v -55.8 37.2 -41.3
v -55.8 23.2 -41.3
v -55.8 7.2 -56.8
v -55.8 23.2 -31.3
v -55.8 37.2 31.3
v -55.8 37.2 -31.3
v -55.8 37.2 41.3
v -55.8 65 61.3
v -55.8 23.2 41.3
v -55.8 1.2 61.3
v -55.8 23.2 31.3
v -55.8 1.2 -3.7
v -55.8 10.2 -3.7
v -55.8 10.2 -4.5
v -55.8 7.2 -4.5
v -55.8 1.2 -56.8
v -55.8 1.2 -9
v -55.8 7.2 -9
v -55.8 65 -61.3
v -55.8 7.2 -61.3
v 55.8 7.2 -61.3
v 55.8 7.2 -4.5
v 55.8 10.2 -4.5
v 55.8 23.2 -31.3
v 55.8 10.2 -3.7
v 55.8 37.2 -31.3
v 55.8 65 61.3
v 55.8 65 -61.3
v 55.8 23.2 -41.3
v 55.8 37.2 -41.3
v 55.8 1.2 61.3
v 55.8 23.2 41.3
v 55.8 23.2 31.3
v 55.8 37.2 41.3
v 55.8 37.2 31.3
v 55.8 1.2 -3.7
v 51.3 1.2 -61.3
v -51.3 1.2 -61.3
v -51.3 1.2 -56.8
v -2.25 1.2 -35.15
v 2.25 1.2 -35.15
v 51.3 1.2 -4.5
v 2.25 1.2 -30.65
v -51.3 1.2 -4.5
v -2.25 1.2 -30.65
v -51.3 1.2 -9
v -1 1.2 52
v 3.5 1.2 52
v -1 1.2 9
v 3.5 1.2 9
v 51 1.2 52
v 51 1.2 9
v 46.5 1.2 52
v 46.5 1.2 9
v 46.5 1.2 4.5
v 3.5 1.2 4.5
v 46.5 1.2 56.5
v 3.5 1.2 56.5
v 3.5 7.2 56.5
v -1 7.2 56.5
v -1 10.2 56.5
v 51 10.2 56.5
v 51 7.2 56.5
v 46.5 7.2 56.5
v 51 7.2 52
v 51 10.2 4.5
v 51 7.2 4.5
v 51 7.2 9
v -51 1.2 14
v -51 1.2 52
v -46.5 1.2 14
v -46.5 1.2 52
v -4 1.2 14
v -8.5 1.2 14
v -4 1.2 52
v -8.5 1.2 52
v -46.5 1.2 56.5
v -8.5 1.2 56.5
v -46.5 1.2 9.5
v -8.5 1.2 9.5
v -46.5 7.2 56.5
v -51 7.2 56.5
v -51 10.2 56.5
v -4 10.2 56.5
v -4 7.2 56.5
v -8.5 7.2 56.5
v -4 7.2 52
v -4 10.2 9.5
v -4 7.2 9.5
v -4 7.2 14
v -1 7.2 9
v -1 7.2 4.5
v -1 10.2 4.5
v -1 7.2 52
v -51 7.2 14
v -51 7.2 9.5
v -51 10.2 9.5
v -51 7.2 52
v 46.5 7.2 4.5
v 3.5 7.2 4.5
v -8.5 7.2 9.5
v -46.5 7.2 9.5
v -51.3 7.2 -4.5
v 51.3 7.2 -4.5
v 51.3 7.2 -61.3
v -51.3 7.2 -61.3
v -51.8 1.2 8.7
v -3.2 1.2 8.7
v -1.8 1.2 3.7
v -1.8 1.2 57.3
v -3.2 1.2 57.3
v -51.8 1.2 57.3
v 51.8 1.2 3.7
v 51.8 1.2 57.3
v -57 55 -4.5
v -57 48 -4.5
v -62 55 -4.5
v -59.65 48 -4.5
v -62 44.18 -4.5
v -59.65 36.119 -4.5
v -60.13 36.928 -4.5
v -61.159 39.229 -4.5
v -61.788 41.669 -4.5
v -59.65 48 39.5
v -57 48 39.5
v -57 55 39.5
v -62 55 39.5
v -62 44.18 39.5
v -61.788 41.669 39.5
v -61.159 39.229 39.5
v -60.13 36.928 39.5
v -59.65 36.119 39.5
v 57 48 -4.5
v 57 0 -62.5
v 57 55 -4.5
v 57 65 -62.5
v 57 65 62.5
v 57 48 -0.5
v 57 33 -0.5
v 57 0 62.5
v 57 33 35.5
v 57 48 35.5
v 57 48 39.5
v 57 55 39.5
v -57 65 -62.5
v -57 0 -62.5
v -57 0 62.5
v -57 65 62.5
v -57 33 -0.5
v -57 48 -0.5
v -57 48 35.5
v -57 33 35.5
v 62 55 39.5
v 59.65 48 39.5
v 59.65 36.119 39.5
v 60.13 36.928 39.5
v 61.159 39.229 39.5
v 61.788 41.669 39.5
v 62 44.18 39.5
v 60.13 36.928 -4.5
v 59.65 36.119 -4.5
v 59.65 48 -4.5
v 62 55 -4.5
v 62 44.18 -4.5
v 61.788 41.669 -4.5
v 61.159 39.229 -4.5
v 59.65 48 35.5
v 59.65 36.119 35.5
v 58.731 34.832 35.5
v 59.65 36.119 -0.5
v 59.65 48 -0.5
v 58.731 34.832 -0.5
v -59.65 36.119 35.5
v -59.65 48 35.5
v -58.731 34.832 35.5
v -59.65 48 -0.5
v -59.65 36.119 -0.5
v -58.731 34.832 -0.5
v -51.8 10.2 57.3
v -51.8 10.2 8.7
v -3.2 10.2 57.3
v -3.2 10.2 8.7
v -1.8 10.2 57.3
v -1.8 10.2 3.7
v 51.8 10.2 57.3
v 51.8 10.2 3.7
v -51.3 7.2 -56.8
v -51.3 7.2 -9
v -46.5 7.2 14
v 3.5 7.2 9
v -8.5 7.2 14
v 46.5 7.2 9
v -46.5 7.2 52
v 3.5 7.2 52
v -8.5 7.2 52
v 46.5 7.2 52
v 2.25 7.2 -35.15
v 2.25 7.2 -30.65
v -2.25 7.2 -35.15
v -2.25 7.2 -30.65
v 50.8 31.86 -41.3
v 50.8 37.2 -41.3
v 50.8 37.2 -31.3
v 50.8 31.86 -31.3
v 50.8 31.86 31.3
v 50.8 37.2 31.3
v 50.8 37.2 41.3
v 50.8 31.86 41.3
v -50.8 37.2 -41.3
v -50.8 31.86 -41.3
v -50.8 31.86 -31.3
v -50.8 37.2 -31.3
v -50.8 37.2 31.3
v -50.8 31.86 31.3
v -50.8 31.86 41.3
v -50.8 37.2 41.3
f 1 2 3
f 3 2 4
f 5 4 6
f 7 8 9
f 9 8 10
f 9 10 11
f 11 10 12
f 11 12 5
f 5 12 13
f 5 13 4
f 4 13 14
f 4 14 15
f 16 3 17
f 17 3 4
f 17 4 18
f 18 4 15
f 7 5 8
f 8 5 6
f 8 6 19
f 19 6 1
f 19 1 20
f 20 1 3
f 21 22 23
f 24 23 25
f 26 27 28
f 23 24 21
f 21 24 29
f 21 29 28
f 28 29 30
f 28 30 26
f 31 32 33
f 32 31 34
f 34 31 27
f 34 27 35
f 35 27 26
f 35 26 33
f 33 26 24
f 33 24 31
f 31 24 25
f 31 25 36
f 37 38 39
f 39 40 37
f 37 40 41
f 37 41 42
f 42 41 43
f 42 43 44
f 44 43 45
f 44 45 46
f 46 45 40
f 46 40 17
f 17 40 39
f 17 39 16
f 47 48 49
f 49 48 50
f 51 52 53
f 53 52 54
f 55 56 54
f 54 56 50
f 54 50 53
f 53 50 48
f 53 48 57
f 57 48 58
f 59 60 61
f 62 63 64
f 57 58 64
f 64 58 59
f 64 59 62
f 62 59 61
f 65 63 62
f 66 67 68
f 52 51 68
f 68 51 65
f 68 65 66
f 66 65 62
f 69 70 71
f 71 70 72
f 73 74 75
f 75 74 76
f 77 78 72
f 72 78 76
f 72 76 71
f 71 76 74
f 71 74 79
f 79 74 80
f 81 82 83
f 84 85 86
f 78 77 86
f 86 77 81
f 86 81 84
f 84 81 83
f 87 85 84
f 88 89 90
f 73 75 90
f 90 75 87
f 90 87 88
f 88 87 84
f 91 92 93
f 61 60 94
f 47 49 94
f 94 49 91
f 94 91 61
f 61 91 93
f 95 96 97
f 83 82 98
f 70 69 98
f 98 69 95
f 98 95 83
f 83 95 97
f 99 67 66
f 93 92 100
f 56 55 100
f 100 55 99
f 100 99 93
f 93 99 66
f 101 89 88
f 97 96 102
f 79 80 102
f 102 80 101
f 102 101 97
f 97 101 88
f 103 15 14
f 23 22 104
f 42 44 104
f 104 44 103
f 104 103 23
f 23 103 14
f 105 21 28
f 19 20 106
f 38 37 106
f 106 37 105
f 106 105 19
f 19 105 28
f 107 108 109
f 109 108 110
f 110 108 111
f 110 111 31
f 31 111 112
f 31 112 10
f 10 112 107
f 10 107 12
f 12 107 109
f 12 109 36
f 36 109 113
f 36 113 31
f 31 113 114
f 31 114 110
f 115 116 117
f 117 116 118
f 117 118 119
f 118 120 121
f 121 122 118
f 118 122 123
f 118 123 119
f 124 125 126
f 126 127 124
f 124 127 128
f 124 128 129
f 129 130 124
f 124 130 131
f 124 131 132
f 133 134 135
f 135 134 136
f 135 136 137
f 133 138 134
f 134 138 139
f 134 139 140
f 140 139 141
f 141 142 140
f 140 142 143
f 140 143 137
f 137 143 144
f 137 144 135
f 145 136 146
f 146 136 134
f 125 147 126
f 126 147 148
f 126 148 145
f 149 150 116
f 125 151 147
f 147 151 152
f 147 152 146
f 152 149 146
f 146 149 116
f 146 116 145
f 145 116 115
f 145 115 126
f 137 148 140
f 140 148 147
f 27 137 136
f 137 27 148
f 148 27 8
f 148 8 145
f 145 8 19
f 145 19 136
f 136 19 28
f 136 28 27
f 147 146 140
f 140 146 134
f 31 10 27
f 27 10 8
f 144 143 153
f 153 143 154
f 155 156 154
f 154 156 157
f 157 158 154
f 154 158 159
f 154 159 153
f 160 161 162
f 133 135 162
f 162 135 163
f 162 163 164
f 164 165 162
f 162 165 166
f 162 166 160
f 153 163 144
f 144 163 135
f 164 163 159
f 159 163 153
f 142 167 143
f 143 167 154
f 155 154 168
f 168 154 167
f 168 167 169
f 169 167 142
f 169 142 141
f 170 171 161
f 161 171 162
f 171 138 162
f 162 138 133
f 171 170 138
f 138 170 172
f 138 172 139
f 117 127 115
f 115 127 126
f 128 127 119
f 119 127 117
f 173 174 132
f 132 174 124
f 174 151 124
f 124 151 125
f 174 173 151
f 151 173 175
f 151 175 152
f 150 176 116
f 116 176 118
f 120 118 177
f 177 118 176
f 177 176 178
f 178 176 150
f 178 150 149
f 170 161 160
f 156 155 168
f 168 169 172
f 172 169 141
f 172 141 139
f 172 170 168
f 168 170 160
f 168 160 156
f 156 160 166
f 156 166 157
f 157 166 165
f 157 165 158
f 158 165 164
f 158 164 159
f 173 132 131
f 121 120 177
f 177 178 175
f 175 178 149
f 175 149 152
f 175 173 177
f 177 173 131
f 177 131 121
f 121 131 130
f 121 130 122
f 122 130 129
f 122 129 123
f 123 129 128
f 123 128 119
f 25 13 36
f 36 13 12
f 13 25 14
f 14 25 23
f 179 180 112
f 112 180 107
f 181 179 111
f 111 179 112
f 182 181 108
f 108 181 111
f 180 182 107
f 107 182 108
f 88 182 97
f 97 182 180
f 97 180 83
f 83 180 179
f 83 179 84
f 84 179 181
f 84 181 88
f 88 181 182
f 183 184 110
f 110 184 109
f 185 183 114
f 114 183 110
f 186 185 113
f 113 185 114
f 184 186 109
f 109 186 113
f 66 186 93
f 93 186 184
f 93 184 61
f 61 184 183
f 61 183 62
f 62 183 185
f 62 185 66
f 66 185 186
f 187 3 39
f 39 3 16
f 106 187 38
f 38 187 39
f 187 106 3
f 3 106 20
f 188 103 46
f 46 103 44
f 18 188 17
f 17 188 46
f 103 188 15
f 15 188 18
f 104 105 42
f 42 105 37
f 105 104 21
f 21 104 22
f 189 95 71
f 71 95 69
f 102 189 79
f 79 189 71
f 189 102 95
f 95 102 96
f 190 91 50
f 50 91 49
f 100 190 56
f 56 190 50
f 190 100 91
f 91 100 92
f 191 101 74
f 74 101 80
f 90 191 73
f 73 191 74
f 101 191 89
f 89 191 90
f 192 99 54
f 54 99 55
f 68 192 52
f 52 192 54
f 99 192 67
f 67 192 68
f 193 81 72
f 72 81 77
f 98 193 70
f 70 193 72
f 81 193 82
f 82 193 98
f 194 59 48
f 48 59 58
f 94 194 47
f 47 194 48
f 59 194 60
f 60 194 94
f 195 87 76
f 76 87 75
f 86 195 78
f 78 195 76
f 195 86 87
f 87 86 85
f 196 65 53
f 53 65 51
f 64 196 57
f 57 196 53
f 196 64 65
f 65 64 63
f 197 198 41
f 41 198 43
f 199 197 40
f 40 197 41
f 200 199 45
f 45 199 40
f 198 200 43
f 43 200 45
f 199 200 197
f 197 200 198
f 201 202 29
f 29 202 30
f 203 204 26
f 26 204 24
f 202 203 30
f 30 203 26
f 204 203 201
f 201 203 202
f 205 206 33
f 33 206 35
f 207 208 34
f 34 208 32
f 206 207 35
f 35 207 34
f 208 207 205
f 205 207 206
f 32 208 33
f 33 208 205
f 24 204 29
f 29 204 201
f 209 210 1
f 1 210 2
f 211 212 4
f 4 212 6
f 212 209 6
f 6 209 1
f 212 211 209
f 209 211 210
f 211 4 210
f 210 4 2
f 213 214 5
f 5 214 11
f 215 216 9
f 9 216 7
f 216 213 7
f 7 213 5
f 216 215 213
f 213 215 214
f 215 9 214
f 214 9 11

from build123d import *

# Parameters (mm, degrees)
SKETCH1_W                  = 114
SKETCH1_H                  = 125
BOSS_EXTRUDE1_DEPTH        = 65
SKETCH2_W                  = 111.6
SKETCH2_H                  = 122.6
CUT_EXTRUDE1_DEPTH         = 63.8
SKETCH3_W                  = 44
SKETCH3_H                  = 22
BOSS_EXTRUDE2_DEPTH        = 5
SKETCH4_W                  = 2.65
SKETCH4_H                  = 15
CUT_EXTRUDE2_DEPTH         = 4
SKETCH6_W                  = 2.65
SKETCH6_H                  = 15
CUT_EXTRUDE3_DEPTH         = 4
FILLET1_R                  = 15
FILLET2_R                  = 15
SKETCH9_W                  = 111.6
SKETCH9_H                  = 57.6
SKETCH9_W_2                = 48.6
SKETCH9_H_2                = 48.6
SKETCH9_W_3                = 53.6
SKETCH9_H_3                = 53.6
BOSS_EXTRUDE4_DEPTH        = 9
SKETCH10_W                 = 111.6
SKETCH10_H                 = 56.8
SKETCH10_W_2               = 47
SKETCH10_H_2               = 47
SKETCH10_W_3               = 52
SKETCH10_H_3               = 52
CUT_EXTRUDE5_DEPTH         = 9
SKETCH11_W                 = 4.5
SKETCH11_H                 = 4.5
SKETCH11_H_2               = 56.8
BOSS_EXTRUDE5_DEPTH        = 6
SKETCH12_W                 = 10
SKETCH12_H                 = 5
BOSS_EXTRUDE6_DEPTH        = 5
CHAMFER1_SIZE              = 9
CHAMFER1_SIZE_2            = 5.196152423
CHAMFER1_OF_MIRROR8_SIZE   = 9
CHAMFER1_OF_MIRROR8_SIZE_2 = 5.196152423


with BuildPart() as part:
    # Sketch1 → Boss-Extrude1 (new body)
    with BuildSketch(Plane(origin=(0, 0, 0), x_dir=(1, 0, 0), z_dir=(0, 1, 0))):
        Rectangle(SKETCH1_W, SKETCH1_H)
    extrude(amount=BOSS_EXTRUDE1_DEPTH)

    # Sketch2 → Cut-Extrude1 (cut)
    with BuildSketch(Plane(origin=(0, 65, 0), x_dir=(1, 0, 0), z_dir=(0, 1, 0))):
        Rectangle(SKETCH2_W, SKETCH2_H)
    extrude(amount=-CUT_EXTRUDE1_DEPTH, mode=Mode.SUBTRACT)

    # Sketch3 → Boss-Extrude2 (add)
    with BuildSketch(Plane(origin=(57, 0, 0), x_dir=(0, 0, -1), z_dir=(1, 0, 0))):
        with Locations((-17.5, 44)):
            Rectangle(SKETCH3_W, SKETCH3_H)
    boss_extrude2 = extrude(amount=BOSS_EXTRUDE2_DEPTH)

    # Sketch4 → Cut-Extrude2 (cut)
    with BuildSketch(Plane.XY.offset(39.5)):
        with Locations((58.325, 40.5)):
            Rectangle(SKETCH4_W, SKETCH4_H)
    cut_extrude2 = extrude(amount=-CUT_EXTRUDE2_DEPTH, mode=Mode.SUBTRACT)

    # Sketch6 → Cut-Extrude3 (cut)
    with BuildSketch(Plane(origin=(0, 0, -4.5), x_dir=(-1, 0, 0), z_dir=(0, 0, -1))):
        with Locations((-58.325, 40.5)):
            Rectangle(SKETCH6_W, SKETCH6_H)
    cut_extrude3 = extrude(amount=-CUT_EXTRUDE3_DEPTH, mode=Mode.SUBTRACT)

    # Mirror5: Boss-Extrude2 across plane
    add(boss_extrude2.mirror(Plane(origin=(0, 0, 0), x_dir=(0, 0, 1), z_dir=(1, 0, 0))))

    # Mirror6: Cut-Extrude2 across plane
    add(cut_extrude2.mirror(Plane(origin=(0, 0, 0), x_dir=(0, 0, 1), z_dir=(1, 0, 0))), mode=Mode.SUBTRACT)

    # Mirror7: Cut-Extrude3 across plane
    add(cut_extrude3.mirror(Plane(origin=(0, 0, 0), x_dir=(0, 0, 1), z_dir=(1, 0, 0))), mode=Mode.SUBTRACT)

    # Fillet1
    # the kernel refuses this fillet: 15 mm, written as the material it takes off along each edge
    with BuildSketch(Plane(origin=(62, 33, -32.450849719), x_dir=(-1, 0, 0), z_dir=(0, 0, 1))) as fillet1_piece_1:
        with BuildLine():
            CenterArc((15, -11.180339887), FILLET1_R, 131.810314896, 48.189685104)
            Line((0, -11.180339887), (-0.3, -11.180339887))
            Line((-0.3, -11.180339887), (-0.3, 0))
            Line((-0.3, 0), (0, 0.3))
            ThreePointArc((0, 0.3), (2.5, 0.3), (4.8, 0.223606798))
            Line((4.8, 0.223606798), (5, 0))
        make_face()
    extrude(amount=99.901699437, mode=Mode.SUBTRACT)

    # Fillet2
    # the kernel refuses this fillet: 15 mm, written as the material it takes off along each edge
    with BuildSketch(Plane(origin=(-62, 33, -32.450849719), x_dir=(1, 0, 0), z_dir=(0, 0, 1))) as fillet2_piece_1:
        with BuildLine():
            CenterArc((15, 11.180339887), FILLET2_R, 180, 48.189685104)
            Line((0, 11.180339887), (-0.3, 11.180339887))
            Line((-0.3, 11.180339887), (-0.3, 0))
            Line((-0.3, 0), (0, -0.3))
            ThreePointArc((0, -0.3), (2.5, -0.3), (4.8, -0.223606798))
            Line((4.8, -0.223606798), (5, 0))
        make_face()
    extrude(amount=99.901699437, mode=Mode.SUBTRACT)

    # Sketch9 → Boss-Extrude4 (add)
    with BuildSketch(Plane(origin=(0, 1.2, 0), x_dir=(1, 0, 0), z_dir=(0, 1, 0))):
        with Locations((0, 32.5)):
            Rectangle(SKETCH9_W, SKETCH9_H)
        with Locations((-27.5, -33)):
            Rectangle(SKETCH9_W_2, SKETCH9_H_2)
        with Locations((25, -30.5)):
            Rectangle(SKETCH9_W_3, SKETCH9_H_3)
    extrude(amount=BOSS_EXTRUDE4_DEPTH)

    # Sketch10 → Cut-Extrude5 (cut)
    with BuildSketch(Plane(origin=(0, 10.2, 0), x_dir=(1, 0, 0), z_dir=(0, 1, 0))):
        with Locations((0, 32.9)):
            Rectangle(SKETCH10_W, SKETCH10_H)
        with Locations((-27.5, -33)):
            Rectangle(SKETCH10_W_2, SKETCH10_H_2)
        with Locations((25, -30.5)):
            Rectangle(SKETCH10_W_3, SKETCH10_H_3)
    extrude(amount=-CUT_EXTRUDE5_DEPTH, mode=Mode.SUBTRACT)

    # Sketch11 → Boss-Extrude5 (add)
    with BuildSketch(Plane(origin=(0, 1.2, 0), x_dir=(1, 0, 0), z_dir=(0, 1, 0))):
        with Locations((-53.55, 59.05)):
            Rectangle(SKETCH11_W, SKETCH11_H)
        with Locations((-53.55, 6.75)):
            Rectangle(SKETCH11_W, SKETCH11_H)
        with Locations((53.55, 32.9)):
            Rectangle(SKETCH11_W, SKETCH11_H_2)
        with Locations((-48.75, -11.75)):
            Rectangle(SKETCH11_W, SKETCH11_H)
        with Locations((1.25, -6.75)):
            Rectangle(SKETCH11_W, SKETCH11_H)
        with Locations((-6.25, -11.75)):
            Rectangle(SKETCH11_W, SKETCH11_H)
        with Locations((48.75, -6.75)):
            Rectangle(SKETCH11_W, SKETCH11_H)
        with Locations((-48.75, -54.25)):
            Rectangle(SKETCH11_W, SKETCH11_H)
        with Locations((1.25, -54.25)):
            Rectangle(SKETCH11_W, SKETCH11_H)
        with Locations((-6.25, -54.25)):
            Rectangle(SKETCH11_W, SKETCH11_H)
        with Locations((48.75, -54.25)):
            Rectangle(SKETCH11_W, SKETCH11_H)
        with Locations((0, 32.9)):
            Rectangle(SKETCH11_W, SKETCH11_H)
    extrude(amount=BOSS_EXTRUDE5_DEPTH)

    # Sketch12 → Boss-Extrude6 (add)
    with BuildSketch(Plane.ZY.offset(-55.8)):
        with Locations((-36.3, 34.7)):
            Rectangle(SKETCH12_W, SKETCH12_H)
        with Locations((36.3, 34.7)):
            Rectangle(SKETCH12_W, SKETCH12_H)
    boss_extrude6 = extrude(amount=BOSS_EXTRUDE6_DEPTH)

    # Chamfer1
    # the kernel refuses this chamfer: 9, 5.196152423 mm, written as the material it adds along each edge
    with BuildSketch(Plane(origin=(55.8, 32.2, 41.3), x_dir=(0.019326765612700678, -0.999813220622208, 0), z_dir=(0, 0, -1))) as chamfer1_piece_1_section:
        Polygon((CHAMFER1_SIZE * 0.999813220622, CHAMFER1_SIZE * 0.0193267656127), (-CHAMFER1_SIZE_2 * 0.0193267656116, CHAMFER1_SIZE_2 * 0.999813220566), (0, 0), align=None)
    chamfer1_piece_1 = extrude(amount=10, mode=Mode.PRIVATE)
    chamfer1_piece_1 = split(chamfer1_piece_1, bisect_by=Plane(origin=(50.8, 29.159896695, 36.3), z_dir=(1, 0, 0)), keep=Keep.TOP, mode=Mode.PRIVATE)
    add(chamfer1_piece_1)
    with BuildSketch(Plane(origin=(55.8, 32.2, -31.3), x_dir=(0.019326765612700678, -0.999813220622208, 0), z_dir=(0, 0, -1))) as chamfer1_piece_2_section:
        Polygon((CHAMFER1_SIZE * 0.999813220622, CHAMFER1_SIZE * 0.0193267656127), (-CHAMFER1_SIZE_2 * 0.0193267656116, CHAMFER1_SIZE_2 * 0.999813220566), (0, 0), align=None)
    chamfer1_piece_2 = extrude(amount=10, mode=Mode.PRIVATE)
    chamfer1_piece_2 = split(chamfer1_piece_2, bisect_by=Plane(origin=(50.8, 29.159896695, -36.3), z_dir=(1, 0, 0)), keep=Keep.TOP, mode=Mode.PRIVATE)
    add(chamfer1_piece_2)

    # Mirror8: Boss-Extrude6 across plane
    add(boss_extrude6.mirror(Plane(origin=(0, 0, 0), x_dir=(0, 0, 1), z_dir=(1, 0, 0))))

    # Chamfer1 of Mirror8
    # the kernel refuses this chamfer: 9, 5.196152423 mm, written as the material it adds along each edge
    with BuildSketch(Plane(origin=(-55.8, 32.2, 41.3), x_dir=(-0.01932676561270296, -0.9998132206222078, 0), z_dir=(0, 0, -1))) as chamfer1_of_mirror8_piece_1_section:
        Polygon((CHAMFER1_OF_MIRROR8_SIZE * 0.999813220622, -CHAMFER1_OF_MIRROR8_SIZE * 0.0193267656127), (-CHAMFER1_OF_MIRROR8_SIZE_2 * 0.0193267656116, -CHAMFER1_OF_MIRROR8_SIZE_2 * 0.999813220566), (0, 0), align=None)
    chamfer1_of_mirror8_piece_1 = extrude(amount=10, mode=Mode.PRIVATE)
    chamfer1_of_mirror8_piece_1 = split(chamfer1_of_mirror8_piece_1, bisect_by=Plane(origin=(-50.8, 29.159896695, 36.3), z_dir=(-1, 0, 0)), keep=Keep.TOP, mode=Mode.PRIVATE)
    add(chamfer1_of_mirror8_piece_1)
    with BuildSketch(Plane(origin=(-55.8, 32.2, -31.3), x_dir=(-0.01932676561270296, -0.9998132206222078, 0), z_dir=(0, 0, -1))) as chamfer1_of_mirror8_piece_2_section:
        Polygon((CHAMFER1_OF_MIRROR8_SIZE * 0.999813220622, -CHAMFER1_OF_MIRROR8_SIZE * 0.0193267656127), (-CHAMFER1_OF_MIRROR8_SIZE_2 * 0.0193267656116, -CHAMFER1_OF_MIRROR8_SIZE_2 * 0.999813220566), (0, 0), align=None)
    chamfer1_of_mirror8_piece_2 = extrude(amount=10, mode=Mode.PRIVATE)
    chamfer1_of_mirror8_piece_2 = split(chamfer1_of_mirror8_piece_2, bisect_by=Plane(origin=(-50.8, 29.159896695, -36.3), z_dir=(-1, 0, 0)), keep=Keep.TOP, mode=Mode.PRIVATE)
    add(chamfer1_of_mirror8_piece_2)


solid = part.part
